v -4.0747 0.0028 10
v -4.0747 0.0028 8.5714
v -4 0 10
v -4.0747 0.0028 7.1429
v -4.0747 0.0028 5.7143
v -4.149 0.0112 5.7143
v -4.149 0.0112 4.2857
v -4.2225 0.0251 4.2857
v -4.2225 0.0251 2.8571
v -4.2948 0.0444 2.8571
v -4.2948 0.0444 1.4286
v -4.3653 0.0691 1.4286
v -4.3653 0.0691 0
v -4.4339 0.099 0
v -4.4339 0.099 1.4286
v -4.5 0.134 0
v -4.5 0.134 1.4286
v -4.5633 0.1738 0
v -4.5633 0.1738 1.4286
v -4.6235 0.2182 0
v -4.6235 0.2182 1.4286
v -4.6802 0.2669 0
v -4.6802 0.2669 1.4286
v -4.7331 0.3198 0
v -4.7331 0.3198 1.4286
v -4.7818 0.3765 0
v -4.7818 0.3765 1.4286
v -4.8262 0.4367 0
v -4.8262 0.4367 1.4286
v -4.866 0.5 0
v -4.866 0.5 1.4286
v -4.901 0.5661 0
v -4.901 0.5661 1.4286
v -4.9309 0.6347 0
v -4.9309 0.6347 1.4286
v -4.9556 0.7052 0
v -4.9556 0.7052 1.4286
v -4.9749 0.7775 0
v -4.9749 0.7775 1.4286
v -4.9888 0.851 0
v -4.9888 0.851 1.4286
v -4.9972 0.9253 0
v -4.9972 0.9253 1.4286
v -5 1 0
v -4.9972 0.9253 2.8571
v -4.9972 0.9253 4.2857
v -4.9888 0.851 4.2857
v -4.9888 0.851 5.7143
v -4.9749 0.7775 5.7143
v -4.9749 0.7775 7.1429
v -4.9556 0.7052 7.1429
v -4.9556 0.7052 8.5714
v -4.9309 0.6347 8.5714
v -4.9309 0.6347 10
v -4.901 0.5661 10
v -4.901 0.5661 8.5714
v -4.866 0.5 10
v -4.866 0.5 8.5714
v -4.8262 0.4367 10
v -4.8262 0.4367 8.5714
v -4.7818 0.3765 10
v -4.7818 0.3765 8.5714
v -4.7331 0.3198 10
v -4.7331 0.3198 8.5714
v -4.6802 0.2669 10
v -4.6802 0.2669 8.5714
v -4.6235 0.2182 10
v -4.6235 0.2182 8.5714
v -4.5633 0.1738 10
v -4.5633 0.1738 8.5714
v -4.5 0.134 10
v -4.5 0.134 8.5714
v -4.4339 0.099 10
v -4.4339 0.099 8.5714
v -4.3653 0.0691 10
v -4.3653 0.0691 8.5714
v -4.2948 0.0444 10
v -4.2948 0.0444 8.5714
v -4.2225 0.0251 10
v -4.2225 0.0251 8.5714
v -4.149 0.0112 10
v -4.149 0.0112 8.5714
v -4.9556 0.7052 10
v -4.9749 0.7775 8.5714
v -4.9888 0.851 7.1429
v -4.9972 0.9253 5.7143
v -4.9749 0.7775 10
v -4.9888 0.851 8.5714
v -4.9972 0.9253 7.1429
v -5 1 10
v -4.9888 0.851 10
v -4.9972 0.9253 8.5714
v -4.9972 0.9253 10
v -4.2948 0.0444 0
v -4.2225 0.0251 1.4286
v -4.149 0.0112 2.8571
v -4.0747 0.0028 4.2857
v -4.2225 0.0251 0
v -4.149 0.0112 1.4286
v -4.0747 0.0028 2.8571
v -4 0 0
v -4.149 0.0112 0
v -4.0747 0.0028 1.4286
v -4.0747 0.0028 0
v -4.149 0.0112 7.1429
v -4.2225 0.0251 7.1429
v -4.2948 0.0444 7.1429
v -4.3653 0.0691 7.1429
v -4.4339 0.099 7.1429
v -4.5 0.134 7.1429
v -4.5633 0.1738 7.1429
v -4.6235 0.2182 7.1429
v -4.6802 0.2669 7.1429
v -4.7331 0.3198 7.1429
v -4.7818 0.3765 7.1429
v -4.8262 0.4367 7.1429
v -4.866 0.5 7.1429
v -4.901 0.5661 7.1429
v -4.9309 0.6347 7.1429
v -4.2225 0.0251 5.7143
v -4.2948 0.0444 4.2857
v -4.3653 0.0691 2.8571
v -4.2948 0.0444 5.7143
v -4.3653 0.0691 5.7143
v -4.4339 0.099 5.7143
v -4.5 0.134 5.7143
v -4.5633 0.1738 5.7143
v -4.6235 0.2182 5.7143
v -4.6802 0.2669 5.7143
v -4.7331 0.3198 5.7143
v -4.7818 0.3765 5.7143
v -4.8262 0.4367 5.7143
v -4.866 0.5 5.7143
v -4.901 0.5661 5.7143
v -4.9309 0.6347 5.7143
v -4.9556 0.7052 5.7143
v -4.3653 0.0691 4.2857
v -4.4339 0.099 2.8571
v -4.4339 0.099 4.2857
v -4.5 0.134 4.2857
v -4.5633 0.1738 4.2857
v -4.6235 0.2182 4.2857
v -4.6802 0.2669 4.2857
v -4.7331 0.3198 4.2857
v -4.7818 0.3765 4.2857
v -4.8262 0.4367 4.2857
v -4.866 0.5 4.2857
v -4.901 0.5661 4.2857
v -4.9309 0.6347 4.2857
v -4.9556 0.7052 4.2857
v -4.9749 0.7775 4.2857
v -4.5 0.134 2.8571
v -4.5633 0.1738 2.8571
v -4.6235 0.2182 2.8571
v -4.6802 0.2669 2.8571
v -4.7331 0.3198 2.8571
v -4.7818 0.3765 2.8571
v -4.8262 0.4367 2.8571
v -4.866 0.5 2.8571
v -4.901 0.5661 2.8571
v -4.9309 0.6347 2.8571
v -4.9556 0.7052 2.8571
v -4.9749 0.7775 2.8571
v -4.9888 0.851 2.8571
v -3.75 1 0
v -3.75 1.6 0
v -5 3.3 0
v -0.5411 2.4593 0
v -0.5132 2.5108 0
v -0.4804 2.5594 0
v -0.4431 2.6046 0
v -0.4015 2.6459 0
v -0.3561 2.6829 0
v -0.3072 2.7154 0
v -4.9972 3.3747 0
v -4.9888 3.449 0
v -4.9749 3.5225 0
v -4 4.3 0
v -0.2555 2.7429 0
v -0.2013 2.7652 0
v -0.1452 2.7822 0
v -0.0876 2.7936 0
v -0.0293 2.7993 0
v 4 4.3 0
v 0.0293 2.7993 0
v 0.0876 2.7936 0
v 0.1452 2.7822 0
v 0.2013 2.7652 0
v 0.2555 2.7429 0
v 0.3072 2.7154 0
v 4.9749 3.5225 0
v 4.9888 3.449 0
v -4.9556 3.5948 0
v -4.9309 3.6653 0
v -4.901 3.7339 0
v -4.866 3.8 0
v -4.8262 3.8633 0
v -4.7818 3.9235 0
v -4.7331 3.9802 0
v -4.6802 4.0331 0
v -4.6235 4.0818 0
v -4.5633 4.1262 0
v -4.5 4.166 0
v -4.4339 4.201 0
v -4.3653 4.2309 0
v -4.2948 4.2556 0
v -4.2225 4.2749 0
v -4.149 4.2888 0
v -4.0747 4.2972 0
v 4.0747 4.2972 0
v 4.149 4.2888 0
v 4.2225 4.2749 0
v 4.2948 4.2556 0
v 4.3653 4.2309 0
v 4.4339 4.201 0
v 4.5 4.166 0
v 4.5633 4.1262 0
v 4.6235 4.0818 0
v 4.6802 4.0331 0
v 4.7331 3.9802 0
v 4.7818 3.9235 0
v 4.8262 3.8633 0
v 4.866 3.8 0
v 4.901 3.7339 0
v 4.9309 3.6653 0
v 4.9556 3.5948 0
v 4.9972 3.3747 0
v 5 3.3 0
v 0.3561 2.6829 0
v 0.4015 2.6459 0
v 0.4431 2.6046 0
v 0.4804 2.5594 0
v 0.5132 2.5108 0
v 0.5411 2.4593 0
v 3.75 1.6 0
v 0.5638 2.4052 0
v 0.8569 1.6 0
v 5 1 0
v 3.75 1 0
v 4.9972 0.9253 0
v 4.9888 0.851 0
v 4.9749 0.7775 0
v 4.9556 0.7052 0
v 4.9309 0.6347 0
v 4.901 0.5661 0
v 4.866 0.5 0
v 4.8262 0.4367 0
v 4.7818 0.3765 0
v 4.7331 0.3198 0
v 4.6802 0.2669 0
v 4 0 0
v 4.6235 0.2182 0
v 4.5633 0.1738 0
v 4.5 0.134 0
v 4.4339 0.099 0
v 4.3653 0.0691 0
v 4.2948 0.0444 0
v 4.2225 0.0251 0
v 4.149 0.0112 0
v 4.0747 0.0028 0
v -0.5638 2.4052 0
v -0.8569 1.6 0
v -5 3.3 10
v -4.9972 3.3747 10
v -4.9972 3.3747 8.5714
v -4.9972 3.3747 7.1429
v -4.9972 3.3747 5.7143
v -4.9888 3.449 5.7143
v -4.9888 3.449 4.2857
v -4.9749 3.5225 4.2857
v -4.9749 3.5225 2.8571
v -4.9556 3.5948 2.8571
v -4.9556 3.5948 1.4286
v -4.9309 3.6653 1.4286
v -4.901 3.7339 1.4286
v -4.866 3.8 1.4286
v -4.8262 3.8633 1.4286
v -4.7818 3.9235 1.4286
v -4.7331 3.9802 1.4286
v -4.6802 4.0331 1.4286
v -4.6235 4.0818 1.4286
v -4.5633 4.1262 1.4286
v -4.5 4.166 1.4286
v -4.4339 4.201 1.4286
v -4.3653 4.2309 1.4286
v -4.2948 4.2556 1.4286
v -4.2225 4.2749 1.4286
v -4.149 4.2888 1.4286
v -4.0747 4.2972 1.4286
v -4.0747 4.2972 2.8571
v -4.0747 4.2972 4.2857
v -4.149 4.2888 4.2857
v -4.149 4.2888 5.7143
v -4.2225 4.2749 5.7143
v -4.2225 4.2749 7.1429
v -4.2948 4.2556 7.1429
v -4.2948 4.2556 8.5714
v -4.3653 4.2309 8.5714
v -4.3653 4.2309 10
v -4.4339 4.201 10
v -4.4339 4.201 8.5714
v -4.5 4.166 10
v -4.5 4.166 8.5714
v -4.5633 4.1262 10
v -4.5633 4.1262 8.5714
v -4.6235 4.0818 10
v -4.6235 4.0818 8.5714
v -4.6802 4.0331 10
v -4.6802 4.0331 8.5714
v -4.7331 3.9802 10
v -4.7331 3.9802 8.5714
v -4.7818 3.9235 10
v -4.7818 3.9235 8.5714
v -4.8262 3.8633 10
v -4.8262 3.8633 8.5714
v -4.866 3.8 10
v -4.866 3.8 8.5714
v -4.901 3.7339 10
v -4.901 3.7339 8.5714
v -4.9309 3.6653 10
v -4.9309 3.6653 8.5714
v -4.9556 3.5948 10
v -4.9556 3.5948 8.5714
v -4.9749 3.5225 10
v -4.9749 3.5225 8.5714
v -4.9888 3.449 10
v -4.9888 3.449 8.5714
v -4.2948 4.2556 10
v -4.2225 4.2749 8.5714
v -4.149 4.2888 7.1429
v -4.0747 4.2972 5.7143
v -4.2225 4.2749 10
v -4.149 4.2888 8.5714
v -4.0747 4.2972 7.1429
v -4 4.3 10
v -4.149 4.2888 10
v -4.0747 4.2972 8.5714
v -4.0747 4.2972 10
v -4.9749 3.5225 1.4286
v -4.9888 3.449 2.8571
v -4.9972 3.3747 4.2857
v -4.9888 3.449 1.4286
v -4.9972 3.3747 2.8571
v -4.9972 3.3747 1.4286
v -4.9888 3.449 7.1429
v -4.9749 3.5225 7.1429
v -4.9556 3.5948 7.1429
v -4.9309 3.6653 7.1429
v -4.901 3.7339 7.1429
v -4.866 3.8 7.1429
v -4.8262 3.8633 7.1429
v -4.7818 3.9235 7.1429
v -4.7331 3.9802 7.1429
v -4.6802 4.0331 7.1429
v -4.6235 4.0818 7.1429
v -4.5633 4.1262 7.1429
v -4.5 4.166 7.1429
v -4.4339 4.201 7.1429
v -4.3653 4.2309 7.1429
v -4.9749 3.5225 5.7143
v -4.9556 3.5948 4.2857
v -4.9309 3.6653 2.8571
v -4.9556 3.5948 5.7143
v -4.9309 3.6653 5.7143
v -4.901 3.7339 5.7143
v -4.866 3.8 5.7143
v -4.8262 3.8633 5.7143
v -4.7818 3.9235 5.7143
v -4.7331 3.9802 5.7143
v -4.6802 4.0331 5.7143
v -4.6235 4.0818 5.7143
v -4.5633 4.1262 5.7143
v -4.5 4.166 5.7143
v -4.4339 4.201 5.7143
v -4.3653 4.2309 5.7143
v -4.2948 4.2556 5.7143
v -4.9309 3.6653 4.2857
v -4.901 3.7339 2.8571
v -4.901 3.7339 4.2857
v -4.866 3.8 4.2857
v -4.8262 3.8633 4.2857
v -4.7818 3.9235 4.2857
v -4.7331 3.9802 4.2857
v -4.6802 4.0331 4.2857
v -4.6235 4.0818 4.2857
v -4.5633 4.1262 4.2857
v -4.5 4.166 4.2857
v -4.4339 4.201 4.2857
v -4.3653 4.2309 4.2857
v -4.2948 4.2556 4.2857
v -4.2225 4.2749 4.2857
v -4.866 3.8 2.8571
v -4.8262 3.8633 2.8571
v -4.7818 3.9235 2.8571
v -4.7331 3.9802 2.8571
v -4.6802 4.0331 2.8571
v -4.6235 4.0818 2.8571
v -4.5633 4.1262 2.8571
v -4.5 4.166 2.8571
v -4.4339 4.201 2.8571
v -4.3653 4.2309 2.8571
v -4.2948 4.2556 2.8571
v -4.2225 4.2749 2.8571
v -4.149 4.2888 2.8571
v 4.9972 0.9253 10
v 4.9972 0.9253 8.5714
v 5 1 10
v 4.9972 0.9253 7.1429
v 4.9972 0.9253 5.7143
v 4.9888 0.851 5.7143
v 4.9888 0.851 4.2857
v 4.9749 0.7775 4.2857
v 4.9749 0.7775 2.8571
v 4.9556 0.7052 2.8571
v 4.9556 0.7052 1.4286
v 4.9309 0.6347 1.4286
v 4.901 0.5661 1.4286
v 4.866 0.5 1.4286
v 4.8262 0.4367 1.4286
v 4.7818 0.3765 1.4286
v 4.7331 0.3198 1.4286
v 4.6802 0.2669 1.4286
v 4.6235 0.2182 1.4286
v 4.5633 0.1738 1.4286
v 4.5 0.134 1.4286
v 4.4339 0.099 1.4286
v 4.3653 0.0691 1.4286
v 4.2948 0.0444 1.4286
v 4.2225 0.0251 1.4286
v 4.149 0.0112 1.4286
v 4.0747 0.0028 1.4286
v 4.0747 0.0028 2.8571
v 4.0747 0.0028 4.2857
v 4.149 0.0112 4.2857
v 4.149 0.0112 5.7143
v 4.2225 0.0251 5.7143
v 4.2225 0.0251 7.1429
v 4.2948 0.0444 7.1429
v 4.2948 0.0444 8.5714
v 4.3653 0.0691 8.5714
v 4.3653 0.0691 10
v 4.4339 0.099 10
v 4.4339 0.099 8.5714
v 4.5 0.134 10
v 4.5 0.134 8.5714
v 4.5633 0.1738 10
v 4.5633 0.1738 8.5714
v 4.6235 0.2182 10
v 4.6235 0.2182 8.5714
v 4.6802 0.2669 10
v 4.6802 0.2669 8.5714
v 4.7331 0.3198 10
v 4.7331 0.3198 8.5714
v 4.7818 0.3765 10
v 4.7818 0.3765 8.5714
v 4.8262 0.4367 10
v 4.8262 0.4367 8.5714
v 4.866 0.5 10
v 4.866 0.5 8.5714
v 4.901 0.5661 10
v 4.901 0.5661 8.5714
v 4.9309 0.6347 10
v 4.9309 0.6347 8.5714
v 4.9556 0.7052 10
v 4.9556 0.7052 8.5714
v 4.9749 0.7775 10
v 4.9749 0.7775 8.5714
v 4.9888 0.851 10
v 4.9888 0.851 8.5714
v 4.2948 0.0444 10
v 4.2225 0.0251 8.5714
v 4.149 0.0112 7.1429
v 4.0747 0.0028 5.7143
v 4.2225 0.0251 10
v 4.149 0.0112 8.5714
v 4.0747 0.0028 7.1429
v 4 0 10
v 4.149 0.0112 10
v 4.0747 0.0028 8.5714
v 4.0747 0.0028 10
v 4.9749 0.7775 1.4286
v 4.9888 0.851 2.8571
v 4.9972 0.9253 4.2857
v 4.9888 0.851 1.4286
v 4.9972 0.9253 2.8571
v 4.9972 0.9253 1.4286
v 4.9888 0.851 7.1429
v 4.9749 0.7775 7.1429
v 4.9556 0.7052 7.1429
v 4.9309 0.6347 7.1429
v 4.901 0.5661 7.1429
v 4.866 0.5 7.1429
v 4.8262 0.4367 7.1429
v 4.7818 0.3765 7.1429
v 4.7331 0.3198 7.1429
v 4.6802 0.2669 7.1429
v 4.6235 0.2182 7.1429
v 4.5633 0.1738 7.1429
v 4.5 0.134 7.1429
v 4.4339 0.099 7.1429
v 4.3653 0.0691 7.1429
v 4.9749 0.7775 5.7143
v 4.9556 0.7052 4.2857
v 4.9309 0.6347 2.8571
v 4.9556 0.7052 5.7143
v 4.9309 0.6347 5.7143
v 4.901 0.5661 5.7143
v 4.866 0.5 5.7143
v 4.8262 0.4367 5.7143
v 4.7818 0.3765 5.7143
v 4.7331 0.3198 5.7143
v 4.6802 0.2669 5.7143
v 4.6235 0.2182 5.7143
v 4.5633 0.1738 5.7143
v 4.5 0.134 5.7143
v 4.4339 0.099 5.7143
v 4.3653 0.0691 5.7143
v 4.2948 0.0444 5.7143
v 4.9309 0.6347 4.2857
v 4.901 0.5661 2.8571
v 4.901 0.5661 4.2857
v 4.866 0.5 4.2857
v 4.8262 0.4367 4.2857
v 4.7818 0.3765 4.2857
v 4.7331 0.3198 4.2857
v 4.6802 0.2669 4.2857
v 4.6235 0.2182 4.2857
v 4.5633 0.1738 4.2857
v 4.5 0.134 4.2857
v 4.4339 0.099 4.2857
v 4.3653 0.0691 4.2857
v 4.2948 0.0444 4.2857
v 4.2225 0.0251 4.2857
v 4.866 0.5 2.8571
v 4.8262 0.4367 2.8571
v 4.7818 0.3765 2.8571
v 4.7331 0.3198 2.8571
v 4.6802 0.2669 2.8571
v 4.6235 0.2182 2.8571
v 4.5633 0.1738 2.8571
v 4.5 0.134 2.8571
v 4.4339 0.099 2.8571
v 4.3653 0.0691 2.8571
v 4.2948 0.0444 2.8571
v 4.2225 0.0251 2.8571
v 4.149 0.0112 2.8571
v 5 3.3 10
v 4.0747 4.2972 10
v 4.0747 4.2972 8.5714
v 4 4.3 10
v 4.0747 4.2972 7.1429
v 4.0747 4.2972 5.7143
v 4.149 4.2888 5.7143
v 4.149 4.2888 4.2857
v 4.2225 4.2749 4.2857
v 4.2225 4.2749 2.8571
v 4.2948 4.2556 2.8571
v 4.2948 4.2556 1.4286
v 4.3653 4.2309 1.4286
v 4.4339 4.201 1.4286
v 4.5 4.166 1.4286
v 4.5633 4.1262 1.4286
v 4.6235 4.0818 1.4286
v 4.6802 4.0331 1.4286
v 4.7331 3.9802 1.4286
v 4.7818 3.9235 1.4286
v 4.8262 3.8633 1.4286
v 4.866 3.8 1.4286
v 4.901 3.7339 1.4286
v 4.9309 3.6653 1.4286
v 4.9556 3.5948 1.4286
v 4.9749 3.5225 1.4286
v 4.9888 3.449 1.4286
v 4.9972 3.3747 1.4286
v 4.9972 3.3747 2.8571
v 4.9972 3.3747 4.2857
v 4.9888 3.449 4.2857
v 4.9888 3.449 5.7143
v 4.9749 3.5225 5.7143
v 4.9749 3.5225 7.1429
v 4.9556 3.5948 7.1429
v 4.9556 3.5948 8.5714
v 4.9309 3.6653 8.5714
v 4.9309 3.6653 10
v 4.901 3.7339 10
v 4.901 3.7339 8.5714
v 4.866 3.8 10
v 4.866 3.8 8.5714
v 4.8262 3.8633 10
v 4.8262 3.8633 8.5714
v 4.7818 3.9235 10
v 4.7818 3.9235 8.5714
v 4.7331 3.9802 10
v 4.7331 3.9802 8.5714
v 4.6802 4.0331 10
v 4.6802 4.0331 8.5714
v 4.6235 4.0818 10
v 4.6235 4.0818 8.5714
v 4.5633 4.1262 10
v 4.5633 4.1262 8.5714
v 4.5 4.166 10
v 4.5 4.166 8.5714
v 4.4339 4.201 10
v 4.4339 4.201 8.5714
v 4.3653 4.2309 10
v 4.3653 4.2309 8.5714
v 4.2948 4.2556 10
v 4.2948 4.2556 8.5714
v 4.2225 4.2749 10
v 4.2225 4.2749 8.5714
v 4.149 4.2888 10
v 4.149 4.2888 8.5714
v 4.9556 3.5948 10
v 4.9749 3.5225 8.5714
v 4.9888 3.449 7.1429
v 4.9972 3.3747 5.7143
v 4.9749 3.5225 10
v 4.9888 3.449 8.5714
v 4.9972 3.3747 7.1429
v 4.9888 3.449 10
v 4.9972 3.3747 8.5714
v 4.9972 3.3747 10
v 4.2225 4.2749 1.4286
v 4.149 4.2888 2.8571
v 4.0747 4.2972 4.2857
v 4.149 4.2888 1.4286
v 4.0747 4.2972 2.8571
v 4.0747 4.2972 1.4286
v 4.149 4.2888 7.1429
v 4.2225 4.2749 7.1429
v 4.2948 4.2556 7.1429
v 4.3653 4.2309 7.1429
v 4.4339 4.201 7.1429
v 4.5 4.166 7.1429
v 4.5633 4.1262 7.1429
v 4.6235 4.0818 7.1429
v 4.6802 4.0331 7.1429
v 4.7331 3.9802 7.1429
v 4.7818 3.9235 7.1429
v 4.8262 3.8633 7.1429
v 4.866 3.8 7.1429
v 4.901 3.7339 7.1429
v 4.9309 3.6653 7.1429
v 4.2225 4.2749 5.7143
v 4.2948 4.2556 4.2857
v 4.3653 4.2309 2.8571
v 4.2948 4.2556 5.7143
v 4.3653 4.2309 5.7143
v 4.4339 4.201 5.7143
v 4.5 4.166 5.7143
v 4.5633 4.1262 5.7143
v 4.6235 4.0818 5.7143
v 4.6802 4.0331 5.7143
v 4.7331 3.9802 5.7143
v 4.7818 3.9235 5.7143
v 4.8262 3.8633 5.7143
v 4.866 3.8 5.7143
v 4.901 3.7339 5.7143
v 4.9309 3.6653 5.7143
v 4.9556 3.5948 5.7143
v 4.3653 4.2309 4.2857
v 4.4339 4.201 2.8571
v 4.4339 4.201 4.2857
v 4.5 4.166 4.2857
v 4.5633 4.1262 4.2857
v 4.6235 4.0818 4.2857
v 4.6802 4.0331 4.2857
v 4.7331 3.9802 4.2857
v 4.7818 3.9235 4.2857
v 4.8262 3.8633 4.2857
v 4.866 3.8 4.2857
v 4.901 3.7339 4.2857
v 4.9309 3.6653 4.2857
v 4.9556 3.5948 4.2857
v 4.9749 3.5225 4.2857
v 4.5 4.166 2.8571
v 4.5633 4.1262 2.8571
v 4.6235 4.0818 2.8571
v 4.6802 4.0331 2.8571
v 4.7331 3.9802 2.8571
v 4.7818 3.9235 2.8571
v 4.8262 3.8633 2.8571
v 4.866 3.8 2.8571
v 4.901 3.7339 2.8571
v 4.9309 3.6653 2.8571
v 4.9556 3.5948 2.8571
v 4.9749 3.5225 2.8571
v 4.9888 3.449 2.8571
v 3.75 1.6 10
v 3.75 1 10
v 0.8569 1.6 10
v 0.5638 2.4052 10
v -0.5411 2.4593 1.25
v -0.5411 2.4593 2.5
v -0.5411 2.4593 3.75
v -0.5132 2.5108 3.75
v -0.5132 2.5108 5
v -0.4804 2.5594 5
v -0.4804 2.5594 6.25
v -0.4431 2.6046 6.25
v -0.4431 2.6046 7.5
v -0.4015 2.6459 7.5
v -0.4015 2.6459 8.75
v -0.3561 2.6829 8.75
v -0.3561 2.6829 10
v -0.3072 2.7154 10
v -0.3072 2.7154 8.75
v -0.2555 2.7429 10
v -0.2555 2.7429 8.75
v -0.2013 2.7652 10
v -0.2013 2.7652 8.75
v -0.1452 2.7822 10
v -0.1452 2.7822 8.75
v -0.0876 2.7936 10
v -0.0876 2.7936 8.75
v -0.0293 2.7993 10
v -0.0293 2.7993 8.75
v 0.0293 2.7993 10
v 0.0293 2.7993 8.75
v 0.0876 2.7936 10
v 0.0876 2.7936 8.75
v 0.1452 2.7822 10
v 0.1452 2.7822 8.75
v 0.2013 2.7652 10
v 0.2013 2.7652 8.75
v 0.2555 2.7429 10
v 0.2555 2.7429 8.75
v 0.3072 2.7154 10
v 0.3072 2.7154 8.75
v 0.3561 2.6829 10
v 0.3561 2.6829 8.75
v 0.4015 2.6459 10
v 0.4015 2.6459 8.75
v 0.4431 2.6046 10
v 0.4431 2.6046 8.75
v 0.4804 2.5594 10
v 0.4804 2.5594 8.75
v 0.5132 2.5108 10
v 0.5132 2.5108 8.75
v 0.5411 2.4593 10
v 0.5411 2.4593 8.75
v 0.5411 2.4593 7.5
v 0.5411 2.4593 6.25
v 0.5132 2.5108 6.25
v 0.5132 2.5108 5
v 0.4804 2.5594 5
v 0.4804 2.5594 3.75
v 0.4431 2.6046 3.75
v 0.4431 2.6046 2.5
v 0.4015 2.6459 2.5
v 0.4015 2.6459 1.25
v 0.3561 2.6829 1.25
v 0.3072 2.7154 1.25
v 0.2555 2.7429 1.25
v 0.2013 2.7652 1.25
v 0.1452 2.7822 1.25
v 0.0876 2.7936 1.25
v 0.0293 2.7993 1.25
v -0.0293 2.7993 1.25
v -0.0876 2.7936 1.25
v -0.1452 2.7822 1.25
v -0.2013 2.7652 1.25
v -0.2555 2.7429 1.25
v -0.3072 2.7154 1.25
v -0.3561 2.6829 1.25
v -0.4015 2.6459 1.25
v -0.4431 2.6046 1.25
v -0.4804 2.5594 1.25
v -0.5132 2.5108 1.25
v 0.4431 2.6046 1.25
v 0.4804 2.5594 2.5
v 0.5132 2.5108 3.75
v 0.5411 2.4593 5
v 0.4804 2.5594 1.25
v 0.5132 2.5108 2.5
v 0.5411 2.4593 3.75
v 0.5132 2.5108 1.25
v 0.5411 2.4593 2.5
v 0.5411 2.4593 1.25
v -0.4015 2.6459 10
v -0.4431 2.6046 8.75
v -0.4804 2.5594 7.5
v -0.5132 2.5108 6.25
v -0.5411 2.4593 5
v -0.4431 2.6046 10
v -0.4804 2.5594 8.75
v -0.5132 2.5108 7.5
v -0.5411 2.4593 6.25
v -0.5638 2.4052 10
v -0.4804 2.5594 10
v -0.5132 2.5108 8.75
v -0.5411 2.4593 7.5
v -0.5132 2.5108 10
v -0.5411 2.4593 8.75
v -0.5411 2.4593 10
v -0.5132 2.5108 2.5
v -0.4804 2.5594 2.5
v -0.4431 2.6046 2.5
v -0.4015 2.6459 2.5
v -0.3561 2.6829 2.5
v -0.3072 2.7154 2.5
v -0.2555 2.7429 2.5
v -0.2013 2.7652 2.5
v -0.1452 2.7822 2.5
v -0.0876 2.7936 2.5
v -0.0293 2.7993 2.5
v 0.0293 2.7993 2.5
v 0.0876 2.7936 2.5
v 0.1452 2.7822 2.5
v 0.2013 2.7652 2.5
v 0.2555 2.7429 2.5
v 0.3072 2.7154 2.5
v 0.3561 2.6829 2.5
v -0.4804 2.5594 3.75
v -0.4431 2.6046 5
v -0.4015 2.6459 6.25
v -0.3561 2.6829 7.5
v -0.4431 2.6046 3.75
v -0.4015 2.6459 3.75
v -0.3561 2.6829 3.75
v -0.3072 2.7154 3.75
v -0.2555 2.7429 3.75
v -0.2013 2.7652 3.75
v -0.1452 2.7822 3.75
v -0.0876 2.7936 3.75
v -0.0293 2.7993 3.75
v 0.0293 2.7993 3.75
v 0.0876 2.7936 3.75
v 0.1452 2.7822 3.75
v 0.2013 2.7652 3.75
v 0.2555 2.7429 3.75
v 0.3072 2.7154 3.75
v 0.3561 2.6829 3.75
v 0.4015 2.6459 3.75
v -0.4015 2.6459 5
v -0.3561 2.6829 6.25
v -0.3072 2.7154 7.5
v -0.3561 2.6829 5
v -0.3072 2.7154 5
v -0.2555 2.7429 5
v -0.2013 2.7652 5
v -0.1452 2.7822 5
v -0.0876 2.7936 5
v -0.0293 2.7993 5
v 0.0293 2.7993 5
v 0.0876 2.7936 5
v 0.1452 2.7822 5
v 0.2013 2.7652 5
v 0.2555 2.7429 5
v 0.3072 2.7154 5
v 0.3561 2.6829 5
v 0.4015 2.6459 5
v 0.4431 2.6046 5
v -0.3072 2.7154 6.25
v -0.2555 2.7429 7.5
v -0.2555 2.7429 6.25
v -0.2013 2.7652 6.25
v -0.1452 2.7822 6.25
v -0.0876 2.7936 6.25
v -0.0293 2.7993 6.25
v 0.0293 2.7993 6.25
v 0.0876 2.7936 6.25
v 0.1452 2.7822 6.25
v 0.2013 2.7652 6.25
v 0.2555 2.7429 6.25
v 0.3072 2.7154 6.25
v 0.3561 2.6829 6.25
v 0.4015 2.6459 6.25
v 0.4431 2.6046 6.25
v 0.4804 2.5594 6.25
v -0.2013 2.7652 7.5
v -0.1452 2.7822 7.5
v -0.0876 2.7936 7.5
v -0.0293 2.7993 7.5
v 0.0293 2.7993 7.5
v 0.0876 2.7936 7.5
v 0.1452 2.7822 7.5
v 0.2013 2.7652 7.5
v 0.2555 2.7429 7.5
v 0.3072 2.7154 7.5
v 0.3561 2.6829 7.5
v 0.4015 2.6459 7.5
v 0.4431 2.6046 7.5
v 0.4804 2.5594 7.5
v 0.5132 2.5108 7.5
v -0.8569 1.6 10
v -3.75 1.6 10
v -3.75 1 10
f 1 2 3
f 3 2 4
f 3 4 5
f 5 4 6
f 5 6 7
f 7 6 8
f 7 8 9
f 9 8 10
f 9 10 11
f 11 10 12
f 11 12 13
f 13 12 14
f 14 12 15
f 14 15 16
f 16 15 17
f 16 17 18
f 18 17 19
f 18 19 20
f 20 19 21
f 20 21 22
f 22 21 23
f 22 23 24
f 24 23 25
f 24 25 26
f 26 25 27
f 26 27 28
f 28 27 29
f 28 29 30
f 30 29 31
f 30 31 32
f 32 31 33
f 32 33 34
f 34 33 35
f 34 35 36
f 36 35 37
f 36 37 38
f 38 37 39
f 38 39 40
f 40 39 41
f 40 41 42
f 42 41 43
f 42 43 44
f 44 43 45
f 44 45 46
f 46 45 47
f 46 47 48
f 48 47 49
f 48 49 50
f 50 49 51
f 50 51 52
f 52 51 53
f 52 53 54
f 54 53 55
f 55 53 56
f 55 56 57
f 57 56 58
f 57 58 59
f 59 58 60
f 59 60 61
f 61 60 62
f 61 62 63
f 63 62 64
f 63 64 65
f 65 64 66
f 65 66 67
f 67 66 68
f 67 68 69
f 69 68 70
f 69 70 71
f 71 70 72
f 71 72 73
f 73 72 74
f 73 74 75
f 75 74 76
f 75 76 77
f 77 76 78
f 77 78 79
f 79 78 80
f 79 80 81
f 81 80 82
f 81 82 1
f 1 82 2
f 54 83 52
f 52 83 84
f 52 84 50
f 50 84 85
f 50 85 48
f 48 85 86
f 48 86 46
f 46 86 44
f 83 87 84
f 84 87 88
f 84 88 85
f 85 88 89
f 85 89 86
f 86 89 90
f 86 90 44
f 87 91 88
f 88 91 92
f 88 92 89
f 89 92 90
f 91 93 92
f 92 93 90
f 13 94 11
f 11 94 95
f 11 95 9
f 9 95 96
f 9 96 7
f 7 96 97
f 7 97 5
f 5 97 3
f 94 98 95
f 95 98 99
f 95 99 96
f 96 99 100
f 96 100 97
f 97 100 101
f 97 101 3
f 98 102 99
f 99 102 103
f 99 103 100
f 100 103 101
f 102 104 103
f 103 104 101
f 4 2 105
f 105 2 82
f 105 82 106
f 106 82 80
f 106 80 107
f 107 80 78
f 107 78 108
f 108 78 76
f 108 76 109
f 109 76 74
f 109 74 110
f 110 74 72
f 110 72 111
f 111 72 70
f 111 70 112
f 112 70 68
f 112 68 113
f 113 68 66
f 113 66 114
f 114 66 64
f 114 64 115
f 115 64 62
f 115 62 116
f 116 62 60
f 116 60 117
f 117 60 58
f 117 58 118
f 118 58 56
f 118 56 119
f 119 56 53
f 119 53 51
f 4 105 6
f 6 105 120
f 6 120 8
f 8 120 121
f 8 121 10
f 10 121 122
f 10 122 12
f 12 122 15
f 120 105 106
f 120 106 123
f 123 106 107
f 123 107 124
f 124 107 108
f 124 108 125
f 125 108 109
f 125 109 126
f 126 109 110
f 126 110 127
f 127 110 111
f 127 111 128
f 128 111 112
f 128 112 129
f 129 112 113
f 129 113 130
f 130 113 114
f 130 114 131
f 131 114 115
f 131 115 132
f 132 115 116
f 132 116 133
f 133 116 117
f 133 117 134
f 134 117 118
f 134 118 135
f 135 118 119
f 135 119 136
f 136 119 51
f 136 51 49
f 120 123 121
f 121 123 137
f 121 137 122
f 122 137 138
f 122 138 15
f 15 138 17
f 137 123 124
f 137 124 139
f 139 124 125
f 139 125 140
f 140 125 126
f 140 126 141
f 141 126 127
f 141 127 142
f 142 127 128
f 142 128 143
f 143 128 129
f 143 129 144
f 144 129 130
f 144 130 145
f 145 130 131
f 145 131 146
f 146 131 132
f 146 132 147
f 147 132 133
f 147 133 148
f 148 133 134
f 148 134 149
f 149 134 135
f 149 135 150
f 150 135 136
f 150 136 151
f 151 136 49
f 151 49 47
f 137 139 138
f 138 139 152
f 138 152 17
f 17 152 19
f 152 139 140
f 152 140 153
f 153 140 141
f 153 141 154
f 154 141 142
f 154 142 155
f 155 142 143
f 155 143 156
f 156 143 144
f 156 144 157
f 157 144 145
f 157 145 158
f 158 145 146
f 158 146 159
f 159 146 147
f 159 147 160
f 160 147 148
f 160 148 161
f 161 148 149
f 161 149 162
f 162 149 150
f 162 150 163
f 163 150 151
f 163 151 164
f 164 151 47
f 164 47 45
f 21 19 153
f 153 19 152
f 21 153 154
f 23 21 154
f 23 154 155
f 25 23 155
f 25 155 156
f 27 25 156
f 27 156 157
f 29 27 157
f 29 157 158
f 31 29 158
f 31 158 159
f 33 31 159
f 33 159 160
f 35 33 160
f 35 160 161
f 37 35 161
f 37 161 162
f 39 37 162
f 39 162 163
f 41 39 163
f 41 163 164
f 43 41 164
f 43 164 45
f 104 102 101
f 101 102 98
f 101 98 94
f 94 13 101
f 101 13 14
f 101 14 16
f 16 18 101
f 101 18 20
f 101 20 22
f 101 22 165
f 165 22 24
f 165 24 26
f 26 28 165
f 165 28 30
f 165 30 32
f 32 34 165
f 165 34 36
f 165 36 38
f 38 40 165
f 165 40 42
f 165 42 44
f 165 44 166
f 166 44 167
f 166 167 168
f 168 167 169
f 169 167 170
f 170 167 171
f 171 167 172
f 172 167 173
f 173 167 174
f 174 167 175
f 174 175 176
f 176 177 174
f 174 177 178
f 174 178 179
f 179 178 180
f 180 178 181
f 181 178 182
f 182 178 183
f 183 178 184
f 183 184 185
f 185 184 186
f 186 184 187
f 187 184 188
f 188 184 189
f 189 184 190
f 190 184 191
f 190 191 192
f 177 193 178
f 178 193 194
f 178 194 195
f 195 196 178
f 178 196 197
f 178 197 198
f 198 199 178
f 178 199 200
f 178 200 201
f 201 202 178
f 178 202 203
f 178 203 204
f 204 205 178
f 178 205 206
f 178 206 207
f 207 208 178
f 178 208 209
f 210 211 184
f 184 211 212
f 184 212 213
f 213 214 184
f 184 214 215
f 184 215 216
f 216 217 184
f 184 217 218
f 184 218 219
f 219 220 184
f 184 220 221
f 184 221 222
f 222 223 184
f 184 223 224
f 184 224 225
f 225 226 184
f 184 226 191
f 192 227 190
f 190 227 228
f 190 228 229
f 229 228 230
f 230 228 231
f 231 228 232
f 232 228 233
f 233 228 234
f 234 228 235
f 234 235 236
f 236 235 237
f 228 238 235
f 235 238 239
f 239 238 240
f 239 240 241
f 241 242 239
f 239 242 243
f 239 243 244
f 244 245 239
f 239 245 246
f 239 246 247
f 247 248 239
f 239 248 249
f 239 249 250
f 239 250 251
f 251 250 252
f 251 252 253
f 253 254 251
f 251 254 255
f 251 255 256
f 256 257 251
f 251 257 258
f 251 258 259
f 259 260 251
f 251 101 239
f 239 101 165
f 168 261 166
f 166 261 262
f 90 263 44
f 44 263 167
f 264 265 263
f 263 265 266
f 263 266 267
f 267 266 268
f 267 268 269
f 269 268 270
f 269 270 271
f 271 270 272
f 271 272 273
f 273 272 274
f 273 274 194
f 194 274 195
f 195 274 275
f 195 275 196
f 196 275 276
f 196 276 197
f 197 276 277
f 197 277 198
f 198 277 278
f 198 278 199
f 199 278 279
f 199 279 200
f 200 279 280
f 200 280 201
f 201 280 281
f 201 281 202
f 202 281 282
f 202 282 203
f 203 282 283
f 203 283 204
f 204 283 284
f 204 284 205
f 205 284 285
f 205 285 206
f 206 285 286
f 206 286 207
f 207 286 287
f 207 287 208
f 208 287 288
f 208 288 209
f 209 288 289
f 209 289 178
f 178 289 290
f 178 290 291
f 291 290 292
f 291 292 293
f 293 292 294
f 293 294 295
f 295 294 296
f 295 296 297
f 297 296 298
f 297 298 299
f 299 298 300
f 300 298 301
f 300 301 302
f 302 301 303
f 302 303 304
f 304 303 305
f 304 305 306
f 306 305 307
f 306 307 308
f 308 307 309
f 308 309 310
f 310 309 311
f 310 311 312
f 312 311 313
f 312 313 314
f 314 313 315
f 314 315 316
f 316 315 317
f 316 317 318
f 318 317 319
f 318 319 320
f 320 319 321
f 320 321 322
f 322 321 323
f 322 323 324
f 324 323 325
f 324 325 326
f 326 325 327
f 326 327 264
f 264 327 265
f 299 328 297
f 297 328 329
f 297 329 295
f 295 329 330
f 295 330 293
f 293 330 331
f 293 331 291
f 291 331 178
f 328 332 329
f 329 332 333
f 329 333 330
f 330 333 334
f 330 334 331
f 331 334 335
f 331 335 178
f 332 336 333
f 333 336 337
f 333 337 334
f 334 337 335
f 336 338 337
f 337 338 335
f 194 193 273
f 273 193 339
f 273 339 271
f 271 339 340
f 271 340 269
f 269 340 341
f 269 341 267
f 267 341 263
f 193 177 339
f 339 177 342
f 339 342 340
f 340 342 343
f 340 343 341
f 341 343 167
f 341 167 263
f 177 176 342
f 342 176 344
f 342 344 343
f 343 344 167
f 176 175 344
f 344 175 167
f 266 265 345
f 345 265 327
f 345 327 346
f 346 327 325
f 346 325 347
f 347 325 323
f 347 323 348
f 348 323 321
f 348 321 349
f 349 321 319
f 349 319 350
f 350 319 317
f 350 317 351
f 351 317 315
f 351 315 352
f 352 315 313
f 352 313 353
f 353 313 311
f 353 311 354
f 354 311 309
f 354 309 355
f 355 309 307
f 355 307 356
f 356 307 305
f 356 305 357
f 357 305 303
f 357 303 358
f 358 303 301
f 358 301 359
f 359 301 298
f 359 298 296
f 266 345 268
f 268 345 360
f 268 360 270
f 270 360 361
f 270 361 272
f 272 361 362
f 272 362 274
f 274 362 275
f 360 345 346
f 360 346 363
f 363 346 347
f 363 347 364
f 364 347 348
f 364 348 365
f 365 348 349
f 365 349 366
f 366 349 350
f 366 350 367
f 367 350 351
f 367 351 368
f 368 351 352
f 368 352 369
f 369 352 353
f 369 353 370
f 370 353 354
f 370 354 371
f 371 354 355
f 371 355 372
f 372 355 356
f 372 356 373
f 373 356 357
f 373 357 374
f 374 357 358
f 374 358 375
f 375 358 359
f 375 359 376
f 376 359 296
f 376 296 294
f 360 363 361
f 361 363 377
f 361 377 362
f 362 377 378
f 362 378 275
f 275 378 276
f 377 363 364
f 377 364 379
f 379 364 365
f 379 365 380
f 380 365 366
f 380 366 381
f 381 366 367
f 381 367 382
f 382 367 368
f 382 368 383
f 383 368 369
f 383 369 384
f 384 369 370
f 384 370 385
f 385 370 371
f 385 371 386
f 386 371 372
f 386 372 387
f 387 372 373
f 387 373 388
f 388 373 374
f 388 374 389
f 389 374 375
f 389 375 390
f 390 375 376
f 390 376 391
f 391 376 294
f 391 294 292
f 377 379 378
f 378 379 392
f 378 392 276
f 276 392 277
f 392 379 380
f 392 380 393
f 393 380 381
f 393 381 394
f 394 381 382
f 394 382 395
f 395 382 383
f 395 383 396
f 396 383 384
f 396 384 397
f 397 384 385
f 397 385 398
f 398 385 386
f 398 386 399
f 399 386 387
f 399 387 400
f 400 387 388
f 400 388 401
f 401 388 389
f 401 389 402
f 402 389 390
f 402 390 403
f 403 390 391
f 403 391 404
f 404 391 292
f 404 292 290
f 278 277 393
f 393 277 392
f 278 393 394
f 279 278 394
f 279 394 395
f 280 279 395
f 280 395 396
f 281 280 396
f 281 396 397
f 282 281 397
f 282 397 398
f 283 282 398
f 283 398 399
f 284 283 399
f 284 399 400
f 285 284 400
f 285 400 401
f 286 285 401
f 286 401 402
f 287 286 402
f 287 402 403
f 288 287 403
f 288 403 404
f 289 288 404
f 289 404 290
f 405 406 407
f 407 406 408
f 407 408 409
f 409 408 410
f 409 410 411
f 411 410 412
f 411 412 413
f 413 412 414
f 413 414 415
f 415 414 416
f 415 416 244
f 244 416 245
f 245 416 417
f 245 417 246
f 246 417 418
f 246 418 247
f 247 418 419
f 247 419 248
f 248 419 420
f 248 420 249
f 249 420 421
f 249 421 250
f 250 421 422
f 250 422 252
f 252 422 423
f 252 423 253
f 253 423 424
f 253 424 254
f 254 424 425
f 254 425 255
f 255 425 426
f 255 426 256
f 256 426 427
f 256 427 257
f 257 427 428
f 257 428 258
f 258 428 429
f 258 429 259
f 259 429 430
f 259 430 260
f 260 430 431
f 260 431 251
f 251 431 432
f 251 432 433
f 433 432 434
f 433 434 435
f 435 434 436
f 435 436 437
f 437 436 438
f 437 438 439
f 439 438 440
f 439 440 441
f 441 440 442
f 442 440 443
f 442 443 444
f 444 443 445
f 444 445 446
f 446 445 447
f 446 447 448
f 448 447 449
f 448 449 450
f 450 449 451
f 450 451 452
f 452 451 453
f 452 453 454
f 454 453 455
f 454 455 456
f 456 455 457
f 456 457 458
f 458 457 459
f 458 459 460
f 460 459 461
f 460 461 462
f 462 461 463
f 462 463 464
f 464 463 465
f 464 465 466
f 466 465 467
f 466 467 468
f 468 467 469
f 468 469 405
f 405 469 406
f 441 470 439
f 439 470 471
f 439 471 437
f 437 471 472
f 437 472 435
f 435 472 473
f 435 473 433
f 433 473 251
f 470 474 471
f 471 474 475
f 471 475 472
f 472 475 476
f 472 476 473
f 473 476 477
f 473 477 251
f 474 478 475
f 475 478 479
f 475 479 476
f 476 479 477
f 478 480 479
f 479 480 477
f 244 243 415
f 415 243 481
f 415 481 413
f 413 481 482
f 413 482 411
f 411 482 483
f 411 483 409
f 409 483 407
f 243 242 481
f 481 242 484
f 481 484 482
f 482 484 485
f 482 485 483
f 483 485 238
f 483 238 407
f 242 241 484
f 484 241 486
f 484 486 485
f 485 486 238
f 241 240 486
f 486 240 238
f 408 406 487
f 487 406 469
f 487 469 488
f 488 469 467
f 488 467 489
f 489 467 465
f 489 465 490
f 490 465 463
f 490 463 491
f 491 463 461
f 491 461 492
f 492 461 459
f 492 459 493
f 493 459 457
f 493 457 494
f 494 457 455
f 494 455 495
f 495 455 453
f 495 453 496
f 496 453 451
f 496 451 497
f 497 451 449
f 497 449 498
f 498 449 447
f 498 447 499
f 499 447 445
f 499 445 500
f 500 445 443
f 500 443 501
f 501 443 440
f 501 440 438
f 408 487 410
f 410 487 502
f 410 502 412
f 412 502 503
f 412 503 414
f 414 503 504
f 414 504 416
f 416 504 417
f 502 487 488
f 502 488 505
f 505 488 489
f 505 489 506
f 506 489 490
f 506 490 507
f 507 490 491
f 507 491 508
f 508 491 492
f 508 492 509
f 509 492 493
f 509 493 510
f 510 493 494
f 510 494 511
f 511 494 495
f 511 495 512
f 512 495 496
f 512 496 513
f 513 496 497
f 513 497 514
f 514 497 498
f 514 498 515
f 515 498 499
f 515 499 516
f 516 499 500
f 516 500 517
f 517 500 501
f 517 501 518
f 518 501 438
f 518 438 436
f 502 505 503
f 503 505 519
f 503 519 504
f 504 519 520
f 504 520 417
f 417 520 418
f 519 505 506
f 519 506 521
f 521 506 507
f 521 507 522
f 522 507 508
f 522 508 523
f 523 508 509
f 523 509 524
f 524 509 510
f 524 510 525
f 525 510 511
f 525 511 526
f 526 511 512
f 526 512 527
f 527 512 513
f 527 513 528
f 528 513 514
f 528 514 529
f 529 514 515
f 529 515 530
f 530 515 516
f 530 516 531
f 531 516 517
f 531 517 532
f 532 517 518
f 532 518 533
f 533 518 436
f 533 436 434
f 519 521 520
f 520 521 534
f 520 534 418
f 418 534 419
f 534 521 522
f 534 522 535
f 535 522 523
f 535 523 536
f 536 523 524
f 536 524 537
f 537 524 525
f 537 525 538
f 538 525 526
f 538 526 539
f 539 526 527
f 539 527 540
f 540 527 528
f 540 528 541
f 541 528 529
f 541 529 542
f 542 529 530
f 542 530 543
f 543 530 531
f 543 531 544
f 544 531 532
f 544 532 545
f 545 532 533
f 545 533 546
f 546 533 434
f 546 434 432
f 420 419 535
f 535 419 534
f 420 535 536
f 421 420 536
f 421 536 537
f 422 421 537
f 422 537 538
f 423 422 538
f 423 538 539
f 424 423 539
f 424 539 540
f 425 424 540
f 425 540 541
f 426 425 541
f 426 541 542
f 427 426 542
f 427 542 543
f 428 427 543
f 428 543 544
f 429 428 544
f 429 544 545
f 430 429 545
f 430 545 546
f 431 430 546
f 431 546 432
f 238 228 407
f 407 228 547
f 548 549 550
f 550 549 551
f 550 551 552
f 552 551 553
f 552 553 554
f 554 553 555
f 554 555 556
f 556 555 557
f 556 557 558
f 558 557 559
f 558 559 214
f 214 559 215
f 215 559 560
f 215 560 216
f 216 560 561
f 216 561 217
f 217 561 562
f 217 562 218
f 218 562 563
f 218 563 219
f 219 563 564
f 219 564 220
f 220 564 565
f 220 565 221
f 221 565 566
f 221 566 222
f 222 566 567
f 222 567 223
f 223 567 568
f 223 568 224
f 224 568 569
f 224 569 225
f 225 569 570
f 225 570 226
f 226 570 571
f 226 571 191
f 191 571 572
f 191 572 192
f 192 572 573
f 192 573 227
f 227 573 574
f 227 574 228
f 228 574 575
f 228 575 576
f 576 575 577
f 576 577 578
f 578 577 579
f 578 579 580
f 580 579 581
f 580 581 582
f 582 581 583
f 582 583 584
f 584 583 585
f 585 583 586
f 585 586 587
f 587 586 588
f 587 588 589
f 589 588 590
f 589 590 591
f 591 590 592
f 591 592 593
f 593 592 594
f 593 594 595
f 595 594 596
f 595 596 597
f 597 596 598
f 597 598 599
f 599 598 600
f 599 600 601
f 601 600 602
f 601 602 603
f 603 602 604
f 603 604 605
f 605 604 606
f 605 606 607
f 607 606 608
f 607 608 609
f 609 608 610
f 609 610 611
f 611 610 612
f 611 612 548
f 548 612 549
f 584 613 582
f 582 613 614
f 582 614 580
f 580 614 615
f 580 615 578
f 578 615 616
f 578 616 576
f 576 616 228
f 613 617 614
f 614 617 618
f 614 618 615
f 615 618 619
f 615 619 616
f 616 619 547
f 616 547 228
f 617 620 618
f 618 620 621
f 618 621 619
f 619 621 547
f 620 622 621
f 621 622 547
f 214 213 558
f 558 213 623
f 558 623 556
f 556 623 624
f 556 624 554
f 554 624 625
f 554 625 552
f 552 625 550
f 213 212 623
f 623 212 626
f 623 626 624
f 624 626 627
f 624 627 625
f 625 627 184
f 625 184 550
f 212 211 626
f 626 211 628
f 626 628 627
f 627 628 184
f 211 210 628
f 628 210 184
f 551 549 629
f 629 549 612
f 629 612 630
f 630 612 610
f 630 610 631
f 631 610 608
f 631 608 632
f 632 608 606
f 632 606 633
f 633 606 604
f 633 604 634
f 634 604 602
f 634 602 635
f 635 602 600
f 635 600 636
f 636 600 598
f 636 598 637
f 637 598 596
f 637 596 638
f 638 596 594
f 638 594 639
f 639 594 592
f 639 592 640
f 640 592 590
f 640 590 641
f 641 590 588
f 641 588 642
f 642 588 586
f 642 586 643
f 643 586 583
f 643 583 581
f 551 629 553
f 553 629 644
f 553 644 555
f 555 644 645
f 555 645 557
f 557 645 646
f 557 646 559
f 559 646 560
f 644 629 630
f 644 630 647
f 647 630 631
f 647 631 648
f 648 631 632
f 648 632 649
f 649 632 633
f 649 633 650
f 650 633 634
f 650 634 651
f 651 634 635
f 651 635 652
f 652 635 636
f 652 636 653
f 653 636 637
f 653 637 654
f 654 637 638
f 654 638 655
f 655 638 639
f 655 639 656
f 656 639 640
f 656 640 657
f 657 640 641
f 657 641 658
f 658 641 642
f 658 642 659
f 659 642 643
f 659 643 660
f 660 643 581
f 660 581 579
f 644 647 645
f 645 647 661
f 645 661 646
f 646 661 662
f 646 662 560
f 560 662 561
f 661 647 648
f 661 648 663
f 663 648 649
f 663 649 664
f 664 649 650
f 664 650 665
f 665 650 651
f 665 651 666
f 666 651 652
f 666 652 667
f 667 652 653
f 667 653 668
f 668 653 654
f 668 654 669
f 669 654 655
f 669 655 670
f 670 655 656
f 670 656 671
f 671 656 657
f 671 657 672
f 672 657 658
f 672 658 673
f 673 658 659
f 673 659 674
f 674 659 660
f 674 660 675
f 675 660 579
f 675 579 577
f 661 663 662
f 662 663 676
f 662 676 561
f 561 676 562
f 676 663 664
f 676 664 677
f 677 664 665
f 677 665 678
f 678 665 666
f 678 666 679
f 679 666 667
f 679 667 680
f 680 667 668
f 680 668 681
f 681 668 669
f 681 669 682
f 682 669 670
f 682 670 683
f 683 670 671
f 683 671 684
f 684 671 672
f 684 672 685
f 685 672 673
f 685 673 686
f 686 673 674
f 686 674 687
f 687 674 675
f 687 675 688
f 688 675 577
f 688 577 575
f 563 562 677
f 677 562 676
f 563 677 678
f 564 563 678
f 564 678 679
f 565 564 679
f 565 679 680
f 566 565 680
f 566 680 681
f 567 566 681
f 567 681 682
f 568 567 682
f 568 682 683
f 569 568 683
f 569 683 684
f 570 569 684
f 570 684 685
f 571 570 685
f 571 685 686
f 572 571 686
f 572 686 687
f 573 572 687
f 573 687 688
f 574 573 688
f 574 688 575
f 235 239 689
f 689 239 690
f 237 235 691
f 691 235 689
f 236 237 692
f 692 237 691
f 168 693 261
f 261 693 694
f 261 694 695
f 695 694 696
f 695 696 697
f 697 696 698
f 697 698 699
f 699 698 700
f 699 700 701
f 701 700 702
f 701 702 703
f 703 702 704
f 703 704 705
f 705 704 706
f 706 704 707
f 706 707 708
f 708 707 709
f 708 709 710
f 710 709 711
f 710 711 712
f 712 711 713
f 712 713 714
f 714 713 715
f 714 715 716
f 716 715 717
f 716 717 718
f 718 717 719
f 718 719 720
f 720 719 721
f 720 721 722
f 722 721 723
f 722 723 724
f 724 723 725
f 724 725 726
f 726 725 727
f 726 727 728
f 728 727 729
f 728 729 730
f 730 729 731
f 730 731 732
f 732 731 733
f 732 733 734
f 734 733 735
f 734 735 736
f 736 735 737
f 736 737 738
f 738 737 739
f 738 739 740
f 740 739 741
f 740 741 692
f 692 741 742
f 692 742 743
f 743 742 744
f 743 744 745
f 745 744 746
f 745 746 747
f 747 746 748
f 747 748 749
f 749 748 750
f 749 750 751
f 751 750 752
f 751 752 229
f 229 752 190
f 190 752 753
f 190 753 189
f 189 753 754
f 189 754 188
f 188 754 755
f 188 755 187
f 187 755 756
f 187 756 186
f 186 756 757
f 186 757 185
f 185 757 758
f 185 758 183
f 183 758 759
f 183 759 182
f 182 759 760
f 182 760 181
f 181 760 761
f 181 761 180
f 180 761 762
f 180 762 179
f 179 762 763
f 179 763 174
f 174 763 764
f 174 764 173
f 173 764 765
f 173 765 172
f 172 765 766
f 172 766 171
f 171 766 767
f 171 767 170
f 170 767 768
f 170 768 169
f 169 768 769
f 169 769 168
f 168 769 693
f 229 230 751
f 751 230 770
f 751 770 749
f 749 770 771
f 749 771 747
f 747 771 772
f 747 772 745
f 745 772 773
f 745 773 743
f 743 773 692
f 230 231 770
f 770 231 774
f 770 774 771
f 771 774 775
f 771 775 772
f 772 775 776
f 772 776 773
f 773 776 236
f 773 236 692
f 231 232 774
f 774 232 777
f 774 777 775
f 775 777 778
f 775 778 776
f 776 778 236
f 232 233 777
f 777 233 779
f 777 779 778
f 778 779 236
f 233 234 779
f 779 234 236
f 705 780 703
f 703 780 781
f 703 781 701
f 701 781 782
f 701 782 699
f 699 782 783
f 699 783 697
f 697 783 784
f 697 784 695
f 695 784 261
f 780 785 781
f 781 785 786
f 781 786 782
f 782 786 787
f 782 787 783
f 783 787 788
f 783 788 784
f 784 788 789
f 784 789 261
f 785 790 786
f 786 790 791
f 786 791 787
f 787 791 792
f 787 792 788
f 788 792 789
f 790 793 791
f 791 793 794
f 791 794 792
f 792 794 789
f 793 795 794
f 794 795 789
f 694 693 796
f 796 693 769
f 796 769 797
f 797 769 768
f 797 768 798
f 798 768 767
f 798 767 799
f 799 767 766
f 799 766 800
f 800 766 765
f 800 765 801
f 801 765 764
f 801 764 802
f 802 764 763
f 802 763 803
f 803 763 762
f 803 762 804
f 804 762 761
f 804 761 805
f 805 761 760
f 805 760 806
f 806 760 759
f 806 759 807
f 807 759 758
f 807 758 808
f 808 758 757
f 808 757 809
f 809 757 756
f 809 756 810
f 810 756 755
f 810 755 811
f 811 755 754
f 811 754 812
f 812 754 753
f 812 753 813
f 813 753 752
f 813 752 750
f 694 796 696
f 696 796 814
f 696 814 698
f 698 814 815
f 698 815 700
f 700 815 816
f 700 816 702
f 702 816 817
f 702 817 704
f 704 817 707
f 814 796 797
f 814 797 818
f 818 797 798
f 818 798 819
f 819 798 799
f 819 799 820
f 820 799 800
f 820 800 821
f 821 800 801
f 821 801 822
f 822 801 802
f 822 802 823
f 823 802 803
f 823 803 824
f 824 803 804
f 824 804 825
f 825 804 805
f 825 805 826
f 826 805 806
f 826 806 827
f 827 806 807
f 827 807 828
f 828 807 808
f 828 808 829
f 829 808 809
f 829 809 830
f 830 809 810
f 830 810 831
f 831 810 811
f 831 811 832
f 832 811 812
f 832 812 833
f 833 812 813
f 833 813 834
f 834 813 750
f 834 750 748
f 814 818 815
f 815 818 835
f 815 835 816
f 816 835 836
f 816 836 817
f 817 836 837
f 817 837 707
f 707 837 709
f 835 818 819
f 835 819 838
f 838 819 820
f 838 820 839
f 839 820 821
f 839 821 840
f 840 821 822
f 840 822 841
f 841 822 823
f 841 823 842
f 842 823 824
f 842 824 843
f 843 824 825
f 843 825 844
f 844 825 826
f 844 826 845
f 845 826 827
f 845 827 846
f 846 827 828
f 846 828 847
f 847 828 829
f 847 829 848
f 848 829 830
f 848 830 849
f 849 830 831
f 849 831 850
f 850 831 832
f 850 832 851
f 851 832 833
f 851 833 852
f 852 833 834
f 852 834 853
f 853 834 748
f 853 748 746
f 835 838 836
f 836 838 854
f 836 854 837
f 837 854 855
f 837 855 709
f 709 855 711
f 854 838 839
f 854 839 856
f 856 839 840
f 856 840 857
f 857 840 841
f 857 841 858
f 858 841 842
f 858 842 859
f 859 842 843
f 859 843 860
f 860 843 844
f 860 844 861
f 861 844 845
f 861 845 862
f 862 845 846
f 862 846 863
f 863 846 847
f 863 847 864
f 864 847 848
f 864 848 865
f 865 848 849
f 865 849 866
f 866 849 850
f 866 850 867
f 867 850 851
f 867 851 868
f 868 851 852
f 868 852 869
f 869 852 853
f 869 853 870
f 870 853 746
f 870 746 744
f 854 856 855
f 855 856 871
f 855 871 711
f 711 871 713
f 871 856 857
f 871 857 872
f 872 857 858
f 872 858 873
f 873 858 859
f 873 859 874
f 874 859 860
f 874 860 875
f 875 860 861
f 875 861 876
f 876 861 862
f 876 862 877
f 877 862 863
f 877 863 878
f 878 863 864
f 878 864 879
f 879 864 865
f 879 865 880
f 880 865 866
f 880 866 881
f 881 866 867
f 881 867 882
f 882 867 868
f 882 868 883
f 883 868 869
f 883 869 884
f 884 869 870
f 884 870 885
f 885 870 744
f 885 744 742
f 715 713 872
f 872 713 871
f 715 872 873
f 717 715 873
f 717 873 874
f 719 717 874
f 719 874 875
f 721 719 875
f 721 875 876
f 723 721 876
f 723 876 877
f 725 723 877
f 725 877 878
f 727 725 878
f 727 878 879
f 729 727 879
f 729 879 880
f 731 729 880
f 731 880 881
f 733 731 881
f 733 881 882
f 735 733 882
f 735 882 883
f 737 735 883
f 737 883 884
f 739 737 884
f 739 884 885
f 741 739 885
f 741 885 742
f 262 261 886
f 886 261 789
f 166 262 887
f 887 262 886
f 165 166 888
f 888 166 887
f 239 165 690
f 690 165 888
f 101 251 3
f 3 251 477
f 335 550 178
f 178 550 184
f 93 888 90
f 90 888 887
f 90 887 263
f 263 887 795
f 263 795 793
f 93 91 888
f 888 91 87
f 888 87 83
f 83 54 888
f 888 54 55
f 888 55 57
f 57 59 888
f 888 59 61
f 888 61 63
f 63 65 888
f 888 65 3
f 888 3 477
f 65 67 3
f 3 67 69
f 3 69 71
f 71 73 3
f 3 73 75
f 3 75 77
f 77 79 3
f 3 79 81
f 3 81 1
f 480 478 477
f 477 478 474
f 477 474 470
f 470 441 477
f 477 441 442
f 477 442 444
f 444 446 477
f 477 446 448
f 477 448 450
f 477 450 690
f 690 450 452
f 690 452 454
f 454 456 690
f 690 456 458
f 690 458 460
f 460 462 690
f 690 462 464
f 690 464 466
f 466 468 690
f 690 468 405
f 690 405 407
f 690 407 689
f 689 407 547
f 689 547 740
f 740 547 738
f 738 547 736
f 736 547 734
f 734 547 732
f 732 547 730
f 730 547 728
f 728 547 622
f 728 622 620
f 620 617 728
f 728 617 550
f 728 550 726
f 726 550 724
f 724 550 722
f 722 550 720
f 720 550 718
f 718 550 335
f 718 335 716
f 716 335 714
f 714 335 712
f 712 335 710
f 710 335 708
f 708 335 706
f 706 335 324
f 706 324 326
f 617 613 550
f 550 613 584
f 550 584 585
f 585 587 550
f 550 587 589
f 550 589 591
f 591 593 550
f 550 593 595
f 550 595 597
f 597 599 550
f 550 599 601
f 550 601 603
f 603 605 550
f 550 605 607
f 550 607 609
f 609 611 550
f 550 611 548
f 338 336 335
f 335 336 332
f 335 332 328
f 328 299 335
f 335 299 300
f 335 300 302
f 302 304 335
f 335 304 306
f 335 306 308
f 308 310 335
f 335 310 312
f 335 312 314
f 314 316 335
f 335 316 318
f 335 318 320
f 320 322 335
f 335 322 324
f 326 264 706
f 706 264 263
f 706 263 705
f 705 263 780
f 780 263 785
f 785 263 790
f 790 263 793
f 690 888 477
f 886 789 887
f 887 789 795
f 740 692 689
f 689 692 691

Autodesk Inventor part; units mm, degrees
ref_plane "YZ Plane" through (0, 0, 0) normal (1, 0, 0) x (0, 1, 0)
ref_plane "XZ Plane" through (0, 0, 0) normal (0, 1, 0) x (-1, 0, 0)
ref_plane "XY Plane" through (0, 0, 0) normal (0, 0, 1) x (1, 0, 0)
sketch "Sketch1" plane through (0, 0, 0) normal (0, 0, 1) x (1, 0, 0)
  line L0 (-5, 0) -> (5, 0)
  line L1 (5, 0) -> (5, 4.3)
  line L2 (5, 4.3) -> (-5, 4.3)
  line L3 (-5, 4.3) -> (-5, 0)
  line L4 (-3.75, 0) -> (3.75, 0)
  line L5 (3.75, 0) -> (3.75, 1.6)
  line L6 (3.75, 1.6) -> (-3.75, 1.6)
  line L7 (-3.75, 1.6) -> (-3.75, 0)
  line L8 (-3.75, 1) -> (3.75, 1)
  circle A0 centre (0, 2.2) radius 0.6
  line L9 (-0.5638, 2.4052) -> (-0.8569, 1.6)
  line L10 (0.5638, 2.4052) -> (0.8569, 1.6)
  point P0 (0, 0)
  dimension "d0" = 10
  dimension "d1" = 7.5
  dimension "d2" = 3.75
  dimension "d3" = 5
  dimension "d4" = 1
  dimension "d5" = 0.6
  dimension "d6" = 1.2
  dimension "d7" = 1.5
  dimension "d8" = 70
  dimension "d9" = 70
extrude "Extrusion1" add sketch "Sketch1" along normal blind 10 contours L3 L2 L1 L0 L5 L6 L10 A0 L9 L7 | L7 L8 L5 L0
fillet "Fillet1" radius 1 4 edges at (5, 4.3, 5) (5, 0, 5) (-5, 4.3, 5) (-5, 0, 5)
equation "\"d2\" = 0.5 * d1"
equation "\"d3\" = 0.5 * d0"
properties part number "Cable_tie_attachment"
